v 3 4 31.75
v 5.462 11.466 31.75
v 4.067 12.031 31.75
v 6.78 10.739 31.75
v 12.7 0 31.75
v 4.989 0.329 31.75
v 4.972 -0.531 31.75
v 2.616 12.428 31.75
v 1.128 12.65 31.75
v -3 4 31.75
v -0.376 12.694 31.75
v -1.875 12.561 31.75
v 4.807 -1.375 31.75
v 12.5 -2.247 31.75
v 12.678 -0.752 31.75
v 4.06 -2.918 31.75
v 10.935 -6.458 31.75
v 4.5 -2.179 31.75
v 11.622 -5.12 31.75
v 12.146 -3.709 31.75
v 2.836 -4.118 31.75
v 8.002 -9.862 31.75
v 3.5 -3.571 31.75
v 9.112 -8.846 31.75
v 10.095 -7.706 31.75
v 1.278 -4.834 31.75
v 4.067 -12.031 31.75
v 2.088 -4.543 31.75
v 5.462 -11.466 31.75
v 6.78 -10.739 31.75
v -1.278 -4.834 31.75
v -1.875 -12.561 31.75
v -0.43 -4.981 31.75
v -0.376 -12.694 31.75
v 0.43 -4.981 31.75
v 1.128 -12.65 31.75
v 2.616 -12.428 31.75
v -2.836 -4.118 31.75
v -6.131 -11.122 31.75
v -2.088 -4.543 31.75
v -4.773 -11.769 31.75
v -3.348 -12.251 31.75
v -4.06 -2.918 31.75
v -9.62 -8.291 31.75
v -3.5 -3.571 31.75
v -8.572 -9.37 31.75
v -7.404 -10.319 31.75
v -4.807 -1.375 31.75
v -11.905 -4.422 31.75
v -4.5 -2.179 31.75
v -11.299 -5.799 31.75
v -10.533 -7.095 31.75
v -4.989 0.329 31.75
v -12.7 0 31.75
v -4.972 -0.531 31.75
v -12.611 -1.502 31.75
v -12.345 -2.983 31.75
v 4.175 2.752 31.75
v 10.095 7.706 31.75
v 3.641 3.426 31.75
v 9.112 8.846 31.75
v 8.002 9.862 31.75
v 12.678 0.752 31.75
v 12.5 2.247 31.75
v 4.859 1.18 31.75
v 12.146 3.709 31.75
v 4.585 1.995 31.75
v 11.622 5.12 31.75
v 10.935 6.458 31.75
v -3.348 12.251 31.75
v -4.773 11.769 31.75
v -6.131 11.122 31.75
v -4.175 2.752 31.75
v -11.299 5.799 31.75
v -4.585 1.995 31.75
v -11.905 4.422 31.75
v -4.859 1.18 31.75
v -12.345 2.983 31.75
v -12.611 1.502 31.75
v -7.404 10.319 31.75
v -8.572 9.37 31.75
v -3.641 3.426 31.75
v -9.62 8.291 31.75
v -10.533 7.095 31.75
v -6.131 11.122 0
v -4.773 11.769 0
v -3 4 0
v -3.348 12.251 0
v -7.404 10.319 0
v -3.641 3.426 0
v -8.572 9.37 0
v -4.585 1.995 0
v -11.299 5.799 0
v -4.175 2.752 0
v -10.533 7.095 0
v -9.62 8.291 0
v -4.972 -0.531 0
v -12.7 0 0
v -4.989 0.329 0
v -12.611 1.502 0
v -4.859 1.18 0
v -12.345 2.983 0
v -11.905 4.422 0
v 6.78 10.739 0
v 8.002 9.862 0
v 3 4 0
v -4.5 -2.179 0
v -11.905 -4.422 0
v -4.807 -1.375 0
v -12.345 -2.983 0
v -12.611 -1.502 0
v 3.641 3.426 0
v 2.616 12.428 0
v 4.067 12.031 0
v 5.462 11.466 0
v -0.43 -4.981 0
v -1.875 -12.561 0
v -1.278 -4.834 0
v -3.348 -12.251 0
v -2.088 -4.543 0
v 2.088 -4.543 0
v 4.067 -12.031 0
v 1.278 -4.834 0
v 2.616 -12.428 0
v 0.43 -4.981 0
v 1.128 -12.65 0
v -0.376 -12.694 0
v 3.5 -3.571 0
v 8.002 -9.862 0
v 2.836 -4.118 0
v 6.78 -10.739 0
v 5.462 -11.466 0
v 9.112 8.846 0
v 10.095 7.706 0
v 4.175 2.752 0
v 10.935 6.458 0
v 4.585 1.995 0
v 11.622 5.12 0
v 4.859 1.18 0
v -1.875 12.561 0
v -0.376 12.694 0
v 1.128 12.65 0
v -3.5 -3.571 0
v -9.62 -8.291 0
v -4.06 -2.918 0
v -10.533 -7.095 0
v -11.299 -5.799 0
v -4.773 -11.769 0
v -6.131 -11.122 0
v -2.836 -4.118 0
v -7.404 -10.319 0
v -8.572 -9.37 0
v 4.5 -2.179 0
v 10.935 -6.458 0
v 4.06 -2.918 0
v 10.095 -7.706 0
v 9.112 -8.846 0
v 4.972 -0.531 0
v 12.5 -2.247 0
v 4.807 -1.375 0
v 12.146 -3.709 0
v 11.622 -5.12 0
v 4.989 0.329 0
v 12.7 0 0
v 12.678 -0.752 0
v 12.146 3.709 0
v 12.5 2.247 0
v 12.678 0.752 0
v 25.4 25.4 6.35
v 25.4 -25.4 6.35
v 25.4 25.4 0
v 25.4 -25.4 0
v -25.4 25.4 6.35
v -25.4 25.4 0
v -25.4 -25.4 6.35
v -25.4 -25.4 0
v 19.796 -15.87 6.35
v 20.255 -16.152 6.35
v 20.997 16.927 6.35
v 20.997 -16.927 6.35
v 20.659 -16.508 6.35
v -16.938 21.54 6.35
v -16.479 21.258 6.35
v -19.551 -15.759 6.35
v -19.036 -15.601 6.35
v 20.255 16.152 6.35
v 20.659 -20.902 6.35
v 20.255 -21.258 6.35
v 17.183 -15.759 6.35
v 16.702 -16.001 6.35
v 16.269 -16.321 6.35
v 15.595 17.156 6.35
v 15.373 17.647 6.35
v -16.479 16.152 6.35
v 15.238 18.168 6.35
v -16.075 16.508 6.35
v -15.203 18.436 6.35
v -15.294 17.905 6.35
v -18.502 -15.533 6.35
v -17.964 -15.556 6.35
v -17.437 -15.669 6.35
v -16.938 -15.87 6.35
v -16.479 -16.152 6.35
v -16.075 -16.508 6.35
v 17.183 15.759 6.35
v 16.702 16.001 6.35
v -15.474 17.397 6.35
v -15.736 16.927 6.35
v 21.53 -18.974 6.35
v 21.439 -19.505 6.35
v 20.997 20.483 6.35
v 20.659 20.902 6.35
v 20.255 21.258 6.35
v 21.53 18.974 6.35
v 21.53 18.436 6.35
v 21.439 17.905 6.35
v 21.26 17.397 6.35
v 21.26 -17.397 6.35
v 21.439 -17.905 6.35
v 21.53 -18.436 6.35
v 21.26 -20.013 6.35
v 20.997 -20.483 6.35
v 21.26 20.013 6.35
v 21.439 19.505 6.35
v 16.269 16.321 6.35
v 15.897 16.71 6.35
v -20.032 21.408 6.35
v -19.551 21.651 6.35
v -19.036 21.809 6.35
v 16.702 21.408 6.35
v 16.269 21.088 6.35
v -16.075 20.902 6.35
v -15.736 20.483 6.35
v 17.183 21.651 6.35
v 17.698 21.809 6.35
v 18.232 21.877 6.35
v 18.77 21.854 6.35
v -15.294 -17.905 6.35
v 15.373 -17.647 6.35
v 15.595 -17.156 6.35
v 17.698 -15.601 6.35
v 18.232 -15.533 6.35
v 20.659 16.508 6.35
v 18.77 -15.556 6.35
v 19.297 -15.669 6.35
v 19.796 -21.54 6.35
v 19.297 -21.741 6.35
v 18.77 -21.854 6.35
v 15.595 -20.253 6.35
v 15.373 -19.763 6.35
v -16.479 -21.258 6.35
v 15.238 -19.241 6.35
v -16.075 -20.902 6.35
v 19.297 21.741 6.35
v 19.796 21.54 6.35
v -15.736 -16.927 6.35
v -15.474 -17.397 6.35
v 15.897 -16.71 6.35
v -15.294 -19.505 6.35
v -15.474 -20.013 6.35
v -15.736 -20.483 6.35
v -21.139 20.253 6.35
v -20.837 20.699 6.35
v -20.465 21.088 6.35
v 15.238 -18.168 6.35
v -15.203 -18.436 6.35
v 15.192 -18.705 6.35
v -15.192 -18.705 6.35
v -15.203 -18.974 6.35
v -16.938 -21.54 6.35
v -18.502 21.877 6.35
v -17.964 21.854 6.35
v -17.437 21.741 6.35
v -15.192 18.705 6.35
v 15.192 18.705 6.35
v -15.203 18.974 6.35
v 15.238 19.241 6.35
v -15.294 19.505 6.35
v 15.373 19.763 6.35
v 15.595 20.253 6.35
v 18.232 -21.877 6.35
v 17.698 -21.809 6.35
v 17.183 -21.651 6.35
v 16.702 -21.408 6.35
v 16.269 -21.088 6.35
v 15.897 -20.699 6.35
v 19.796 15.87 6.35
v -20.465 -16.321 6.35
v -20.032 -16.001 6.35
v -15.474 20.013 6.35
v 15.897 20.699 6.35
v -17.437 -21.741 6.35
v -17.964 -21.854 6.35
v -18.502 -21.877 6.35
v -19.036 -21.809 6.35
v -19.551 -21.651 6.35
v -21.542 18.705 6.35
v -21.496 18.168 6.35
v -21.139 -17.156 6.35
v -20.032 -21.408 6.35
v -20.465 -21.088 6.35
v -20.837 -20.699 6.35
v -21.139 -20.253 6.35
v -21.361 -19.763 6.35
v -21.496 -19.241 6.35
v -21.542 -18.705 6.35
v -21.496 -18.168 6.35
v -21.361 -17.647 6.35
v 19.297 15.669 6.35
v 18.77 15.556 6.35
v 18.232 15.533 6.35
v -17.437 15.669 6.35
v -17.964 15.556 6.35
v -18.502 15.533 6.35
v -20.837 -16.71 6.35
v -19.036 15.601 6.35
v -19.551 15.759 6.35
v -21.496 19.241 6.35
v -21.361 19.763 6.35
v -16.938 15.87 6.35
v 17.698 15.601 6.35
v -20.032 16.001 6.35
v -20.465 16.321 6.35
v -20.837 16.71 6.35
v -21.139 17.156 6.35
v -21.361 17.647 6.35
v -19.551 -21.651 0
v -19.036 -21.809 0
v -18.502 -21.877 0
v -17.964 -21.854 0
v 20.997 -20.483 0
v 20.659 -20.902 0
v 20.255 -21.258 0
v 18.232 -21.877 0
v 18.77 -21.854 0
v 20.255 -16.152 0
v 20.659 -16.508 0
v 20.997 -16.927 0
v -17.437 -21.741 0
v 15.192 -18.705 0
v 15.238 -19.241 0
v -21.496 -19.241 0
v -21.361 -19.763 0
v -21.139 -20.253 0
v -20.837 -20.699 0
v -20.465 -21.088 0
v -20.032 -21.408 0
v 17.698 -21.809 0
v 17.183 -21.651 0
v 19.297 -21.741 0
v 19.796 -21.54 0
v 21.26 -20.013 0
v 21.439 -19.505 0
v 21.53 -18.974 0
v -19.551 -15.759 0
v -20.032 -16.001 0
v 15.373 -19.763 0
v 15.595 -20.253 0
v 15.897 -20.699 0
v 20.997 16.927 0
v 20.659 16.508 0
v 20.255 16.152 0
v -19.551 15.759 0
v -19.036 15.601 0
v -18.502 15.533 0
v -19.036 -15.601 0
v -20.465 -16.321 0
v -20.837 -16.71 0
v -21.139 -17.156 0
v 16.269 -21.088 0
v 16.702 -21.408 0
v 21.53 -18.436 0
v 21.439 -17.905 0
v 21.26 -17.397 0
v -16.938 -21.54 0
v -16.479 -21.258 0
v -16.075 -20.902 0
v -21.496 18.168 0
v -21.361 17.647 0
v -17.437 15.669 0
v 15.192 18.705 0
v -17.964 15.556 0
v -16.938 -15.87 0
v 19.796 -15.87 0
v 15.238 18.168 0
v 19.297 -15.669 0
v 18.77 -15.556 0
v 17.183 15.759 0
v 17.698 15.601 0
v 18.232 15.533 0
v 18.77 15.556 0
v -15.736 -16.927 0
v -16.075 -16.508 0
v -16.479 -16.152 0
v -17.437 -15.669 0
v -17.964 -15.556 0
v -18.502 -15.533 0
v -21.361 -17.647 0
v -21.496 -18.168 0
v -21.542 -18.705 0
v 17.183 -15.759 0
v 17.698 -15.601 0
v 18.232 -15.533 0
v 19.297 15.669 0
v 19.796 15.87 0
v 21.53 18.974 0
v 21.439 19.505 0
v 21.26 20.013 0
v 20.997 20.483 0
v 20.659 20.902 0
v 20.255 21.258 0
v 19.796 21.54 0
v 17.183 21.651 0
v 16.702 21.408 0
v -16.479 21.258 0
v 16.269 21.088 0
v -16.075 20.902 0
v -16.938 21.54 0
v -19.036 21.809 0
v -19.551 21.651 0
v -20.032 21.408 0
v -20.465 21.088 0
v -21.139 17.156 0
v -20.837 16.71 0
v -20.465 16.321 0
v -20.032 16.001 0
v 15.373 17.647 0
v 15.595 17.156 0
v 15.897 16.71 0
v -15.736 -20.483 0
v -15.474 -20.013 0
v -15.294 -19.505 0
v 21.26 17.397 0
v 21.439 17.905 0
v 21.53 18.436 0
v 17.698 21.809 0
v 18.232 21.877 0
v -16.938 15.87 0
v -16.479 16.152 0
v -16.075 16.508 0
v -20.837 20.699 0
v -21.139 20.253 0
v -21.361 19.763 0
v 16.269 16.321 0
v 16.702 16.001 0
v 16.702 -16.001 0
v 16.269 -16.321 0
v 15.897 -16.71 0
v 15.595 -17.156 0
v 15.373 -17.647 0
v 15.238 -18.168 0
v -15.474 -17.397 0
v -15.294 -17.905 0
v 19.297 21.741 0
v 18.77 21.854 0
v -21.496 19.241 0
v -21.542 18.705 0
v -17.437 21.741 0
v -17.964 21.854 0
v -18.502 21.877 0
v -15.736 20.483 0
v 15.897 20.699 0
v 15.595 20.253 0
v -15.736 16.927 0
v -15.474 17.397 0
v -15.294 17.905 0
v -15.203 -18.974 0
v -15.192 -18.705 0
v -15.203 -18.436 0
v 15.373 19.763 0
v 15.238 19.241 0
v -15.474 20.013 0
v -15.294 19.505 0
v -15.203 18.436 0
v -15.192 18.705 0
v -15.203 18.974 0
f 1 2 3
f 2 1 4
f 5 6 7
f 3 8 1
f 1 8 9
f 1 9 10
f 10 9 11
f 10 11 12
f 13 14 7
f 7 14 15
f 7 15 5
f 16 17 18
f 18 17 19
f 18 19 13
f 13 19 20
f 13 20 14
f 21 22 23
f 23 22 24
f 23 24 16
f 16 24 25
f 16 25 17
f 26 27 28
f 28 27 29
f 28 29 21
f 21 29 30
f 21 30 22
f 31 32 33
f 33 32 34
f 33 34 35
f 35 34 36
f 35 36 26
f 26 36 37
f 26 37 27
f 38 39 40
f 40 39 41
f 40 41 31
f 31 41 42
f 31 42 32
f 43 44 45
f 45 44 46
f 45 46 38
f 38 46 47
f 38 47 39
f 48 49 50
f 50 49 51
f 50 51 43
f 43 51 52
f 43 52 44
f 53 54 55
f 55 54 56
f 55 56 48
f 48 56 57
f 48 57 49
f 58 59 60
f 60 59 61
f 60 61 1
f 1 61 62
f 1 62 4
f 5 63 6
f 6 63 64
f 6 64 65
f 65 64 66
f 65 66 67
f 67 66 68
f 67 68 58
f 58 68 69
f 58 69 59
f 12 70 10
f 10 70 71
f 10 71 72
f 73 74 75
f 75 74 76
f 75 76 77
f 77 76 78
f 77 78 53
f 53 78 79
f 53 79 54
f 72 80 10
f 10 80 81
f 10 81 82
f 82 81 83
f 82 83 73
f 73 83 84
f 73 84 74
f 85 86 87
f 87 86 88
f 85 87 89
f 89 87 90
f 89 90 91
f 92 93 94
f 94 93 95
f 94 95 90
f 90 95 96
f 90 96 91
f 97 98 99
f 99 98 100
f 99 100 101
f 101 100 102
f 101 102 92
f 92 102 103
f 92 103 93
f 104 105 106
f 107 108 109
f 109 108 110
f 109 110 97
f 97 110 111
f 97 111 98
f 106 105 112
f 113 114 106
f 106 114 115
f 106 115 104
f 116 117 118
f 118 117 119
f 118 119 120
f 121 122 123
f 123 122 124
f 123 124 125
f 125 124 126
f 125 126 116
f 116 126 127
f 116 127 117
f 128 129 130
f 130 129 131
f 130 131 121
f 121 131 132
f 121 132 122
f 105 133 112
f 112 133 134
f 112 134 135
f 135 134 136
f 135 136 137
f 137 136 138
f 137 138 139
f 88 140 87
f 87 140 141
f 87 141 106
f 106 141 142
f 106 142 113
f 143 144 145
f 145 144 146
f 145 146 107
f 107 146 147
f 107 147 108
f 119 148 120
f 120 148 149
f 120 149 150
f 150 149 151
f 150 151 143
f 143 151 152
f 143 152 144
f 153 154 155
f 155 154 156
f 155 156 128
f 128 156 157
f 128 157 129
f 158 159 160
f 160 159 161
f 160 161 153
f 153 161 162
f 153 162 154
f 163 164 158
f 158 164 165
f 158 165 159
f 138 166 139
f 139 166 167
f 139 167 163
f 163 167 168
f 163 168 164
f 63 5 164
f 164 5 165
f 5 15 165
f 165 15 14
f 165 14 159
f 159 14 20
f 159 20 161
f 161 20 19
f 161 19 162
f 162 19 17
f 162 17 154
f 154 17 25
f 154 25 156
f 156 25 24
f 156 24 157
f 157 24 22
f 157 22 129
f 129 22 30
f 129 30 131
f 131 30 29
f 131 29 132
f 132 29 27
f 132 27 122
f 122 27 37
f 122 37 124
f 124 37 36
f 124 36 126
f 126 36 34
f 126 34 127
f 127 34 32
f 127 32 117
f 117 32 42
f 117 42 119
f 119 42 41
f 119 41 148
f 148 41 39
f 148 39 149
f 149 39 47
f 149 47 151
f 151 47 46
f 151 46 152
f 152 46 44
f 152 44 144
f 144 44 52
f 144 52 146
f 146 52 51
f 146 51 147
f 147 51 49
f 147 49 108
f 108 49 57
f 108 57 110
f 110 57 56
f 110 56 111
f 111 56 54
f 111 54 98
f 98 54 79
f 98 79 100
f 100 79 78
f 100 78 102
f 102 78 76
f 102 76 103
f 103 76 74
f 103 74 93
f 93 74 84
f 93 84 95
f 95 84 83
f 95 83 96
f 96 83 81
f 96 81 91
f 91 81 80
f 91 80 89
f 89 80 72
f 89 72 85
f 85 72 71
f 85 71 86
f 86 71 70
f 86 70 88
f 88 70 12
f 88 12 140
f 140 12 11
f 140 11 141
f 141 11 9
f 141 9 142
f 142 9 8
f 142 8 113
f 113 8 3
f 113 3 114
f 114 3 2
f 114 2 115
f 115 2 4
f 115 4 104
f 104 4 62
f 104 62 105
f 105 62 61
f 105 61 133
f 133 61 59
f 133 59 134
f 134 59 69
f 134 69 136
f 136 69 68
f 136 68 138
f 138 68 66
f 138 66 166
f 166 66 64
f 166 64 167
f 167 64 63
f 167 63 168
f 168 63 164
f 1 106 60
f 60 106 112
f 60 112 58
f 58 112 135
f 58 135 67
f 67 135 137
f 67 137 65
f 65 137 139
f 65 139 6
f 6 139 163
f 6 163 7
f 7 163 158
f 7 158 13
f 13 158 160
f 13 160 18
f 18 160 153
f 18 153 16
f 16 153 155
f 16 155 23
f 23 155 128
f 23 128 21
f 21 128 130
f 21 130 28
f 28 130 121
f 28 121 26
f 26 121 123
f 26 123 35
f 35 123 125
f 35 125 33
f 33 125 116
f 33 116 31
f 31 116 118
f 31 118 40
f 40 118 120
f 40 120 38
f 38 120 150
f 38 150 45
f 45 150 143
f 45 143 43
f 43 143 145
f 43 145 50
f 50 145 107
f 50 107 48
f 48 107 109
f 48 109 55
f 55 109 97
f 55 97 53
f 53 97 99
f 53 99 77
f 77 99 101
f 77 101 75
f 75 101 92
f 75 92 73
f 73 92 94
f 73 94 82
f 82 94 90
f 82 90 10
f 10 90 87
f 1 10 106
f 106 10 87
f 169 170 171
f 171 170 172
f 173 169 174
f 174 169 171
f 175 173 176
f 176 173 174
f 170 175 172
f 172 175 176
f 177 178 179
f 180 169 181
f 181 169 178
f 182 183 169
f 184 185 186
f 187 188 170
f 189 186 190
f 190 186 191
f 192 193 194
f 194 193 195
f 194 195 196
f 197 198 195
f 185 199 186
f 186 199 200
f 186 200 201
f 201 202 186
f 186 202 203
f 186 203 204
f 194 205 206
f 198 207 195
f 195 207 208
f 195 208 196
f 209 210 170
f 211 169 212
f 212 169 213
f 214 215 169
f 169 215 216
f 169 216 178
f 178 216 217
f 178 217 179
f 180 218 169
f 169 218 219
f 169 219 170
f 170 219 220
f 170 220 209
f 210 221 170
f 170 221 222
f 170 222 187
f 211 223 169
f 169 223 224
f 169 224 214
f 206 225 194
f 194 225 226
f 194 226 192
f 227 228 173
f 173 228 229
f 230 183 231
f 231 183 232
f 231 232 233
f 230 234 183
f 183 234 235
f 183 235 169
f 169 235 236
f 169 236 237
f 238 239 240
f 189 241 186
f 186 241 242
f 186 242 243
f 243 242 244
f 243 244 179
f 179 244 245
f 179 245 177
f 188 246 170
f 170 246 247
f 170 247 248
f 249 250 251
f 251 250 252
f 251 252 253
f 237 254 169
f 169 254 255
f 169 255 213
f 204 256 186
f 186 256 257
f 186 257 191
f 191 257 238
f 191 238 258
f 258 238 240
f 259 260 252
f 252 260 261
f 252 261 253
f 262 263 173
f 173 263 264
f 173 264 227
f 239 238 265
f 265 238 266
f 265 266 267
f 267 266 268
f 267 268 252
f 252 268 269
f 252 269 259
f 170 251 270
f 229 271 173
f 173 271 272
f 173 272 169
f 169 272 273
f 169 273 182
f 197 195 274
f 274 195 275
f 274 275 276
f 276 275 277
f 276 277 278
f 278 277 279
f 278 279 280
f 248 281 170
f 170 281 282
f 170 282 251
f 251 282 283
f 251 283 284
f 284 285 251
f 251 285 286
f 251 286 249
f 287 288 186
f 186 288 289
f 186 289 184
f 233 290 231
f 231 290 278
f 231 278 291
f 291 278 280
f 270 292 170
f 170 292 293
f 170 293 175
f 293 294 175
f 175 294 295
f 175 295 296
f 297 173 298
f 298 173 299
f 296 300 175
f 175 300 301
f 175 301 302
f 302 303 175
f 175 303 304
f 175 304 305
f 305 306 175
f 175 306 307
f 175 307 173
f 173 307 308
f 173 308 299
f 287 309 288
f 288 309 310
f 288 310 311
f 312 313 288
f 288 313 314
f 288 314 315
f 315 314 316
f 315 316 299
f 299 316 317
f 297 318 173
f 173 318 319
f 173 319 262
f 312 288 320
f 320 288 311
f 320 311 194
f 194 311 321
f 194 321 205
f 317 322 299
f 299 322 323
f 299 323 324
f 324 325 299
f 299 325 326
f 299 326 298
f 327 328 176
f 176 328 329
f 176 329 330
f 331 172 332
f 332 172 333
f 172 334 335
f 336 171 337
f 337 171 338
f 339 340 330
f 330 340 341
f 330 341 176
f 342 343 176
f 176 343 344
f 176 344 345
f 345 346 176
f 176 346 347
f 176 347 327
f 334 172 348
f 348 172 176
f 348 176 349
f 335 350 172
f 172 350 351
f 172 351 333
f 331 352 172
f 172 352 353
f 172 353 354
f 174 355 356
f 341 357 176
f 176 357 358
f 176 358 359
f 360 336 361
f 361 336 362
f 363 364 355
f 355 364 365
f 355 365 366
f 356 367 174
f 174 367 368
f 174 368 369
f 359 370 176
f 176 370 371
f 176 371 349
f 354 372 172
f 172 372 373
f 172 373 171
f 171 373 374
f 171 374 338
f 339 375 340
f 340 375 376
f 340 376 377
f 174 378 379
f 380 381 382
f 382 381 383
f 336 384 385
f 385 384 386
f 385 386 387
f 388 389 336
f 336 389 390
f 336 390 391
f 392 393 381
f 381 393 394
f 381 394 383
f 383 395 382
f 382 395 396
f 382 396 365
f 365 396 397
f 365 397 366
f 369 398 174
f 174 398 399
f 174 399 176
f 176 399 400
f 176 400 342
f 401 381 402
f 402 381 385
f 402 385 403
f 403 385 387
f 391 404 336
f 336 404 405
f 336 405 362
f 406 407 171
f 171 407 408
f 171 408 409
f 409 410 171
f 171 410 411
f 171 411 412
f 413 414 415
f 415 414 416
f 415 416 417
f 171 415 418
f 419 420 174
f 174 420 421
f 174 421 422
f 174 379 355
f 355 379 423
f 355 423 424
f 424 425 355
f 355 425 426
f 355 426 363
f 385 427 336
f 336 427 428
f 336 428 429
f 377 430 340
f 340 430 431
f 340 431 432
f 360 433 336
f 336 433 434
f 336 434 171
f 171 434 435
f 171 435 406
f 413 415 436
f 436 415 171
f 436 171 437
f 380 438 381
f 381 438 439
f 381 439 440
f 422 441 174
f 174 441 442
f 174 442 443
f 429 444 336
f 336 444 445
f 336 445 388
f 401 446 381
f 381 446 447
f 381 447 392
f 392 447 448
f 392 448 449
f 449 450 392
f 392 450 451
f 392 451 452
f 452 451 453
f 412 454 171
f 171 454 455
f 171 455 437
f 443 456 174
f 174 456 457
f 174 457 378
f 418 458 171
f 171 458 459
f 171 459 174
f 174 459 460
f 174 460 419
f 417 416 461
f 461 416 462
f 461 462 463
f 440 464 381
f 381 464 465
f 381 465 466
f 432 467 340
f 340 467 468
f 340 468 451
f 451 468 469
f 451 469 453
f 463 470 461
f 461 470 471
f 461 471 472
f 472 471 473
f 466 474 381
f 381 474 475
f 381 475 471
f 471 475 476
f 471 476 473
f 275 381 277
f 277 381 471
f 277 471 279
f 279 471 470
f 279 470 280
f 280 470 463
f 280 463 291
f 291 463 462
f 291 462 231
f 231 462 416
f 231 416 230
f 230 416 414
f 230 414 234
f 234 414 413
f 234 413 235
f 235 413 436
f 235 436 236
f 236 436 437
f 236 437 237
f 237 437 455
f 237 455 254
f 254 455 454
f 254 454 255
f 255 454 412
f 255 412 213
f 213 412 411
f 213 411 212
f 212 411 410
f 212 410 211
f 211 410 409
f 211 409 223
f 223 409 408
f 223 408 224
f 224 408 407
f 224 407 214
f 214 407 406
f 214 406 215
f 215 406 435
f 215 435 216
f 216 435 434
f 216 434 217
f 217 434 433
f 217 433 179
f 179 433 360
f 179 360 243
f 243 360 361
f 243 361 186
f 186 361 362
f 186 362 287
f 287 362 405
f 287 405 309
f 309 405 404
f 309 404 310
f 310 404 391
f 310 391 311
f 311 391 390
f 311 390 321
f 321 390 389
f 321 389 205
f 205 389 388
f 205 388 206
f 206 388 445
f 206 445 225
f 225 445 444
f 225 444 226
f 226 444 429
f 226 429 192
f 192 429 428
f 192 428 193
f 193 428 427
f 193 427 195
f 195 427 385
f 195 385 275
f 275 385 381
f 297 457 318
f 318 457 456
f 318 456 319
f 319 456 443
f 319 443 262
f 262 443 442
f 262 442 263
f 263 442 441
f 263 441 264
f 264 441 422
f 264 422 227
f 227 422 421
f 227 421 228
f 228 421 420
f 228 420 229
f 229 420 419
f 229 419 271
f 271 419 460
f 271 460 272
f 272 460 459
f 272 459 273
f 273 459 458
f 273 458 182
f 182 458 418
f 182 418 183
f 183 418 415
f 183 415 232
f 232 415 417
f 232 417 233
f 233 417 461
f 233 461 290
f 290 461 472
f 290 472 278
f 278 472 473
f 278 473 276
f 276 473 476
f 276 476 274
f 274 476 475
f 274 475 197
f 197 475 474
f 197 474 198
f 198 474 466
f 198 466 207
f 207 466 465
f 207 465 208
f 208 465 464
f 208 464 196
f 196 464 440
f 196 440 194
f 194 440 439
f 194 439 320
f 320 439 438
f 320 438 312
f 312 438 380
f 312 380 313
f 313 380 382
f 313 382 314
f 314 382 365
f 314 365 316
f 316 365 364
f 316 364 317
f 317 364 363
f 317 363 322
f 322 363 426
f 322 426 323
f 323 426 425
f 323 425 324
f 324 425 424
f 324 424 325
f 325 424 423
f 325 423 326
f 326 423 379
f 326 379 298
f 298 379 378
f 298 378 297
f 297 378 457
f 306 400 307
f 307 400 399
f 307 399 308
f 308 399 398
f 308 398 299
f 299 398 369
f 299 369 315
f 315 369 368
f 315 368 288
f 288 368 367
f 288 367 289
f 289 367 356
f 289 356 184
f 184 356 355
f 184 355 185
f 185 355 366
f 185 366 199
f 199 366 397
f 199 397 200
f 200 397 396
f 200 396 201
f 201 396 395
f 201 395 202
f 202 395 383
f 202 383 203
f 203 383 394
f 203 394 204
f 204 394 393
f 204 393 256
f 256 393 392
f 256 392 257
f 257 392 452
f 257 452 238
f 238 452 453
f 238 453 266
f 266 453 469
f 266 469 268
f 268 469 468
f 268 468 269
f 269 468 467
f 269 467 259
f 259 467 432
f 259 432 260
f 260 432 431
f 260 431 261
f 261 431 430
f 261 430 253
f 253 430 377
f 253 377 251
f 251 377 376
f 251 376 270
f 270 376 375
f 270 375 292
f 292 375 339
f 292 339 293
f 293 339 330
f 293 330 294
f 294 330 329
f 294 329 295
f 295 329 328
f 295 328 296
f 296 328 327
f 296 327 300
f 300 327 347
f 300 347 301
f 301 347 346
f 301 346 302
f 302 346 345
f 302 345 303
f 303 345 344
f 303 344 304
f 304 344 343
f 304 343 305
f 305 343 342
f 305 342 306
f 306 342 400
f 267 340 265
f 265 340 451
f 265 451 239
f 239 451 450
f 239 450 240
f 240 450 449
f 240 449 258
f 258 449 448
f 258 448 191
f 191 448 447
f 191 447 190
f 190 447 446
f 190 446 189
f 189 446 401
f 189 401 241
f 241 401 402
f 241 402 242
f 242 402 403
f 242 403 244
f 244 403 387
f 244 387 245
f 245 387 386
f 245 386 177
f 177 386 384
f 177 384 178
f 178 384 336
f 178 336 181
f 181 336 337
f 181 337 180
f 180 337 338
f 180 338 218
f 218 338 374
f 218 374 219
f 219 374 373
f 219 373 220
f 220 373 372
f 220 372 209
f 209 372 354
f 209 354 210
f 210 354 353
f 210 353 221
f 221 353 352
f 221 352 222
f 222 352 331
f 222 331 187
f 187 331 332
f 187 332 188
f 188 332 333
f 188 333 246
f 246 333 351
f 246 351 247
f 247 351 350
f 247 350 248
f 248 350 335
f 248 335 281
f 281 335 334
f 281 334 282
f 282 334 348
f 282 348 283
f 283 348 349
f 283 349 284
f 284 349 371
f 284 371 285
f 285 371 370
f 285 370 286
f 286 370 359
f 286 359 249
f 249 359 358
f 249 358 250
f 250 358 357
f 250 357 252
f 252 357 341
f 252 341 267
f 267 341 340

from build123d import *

# Parameters (mm, degrees)
SKETCH1_R               = 12.7
BOSS_EXTRUDE5_DEPTH     = 31.75
SKETCH3_W               = 50.8
SKETCH3_H               = 50.8
BOSS_EXTRUDE6_DEPTH     = 6.35
SKETCH4_R               = 3.175
CUT_EXTRUDE1_DEPTH      = 32.75
MIRROR2_COPY_1_SKETCH_R = 3.175
MIRROR2_COPY_1_DEPTH    = 32.75


with BuildPart() as part:
    # Sketch1 → Boss-Extrude5 (new body)
    with BuildSketch(Plane.XY):
        Circle(SKETCH1_R)
        with BuildLine():
            Line((-3.000000011, 3.999999874), (3.000000011, 3.999999874))
            ThreePointArc((3.000000011, 3.999999874), (0, -4.999999906), (-3.000000011, 3.999999874))
        make_face(mode=Mode.SUBTRACT)
    extrude(amount=BOSS_EXTRUDE5_DEPTH)


with BuildPart() as body_2:
    # Sketch3 → Boss-Extrude6 (new body)
    with BuildSketch(Plane.XY):
        Rectangle(SKETCH3_W, SKETCH3_H)
    extrude(amount=BOSS_EXTRUDE6_DEPTH)

    # Sketch4 → Cut-Extrude1 (cut, through all)
    with BuildSketch(Plane(origin=(0, 0, 0), x_dir=(-1, 0, 0), z_dir=(0, 0, -1))):
        with Locations((-18.366924537, 18.704816802)):
            Circle(SKETCH4_R)
    cut_extrude1 = extrude(amount=-CUT_EXTRUDE1_DEPTH, mode=Mode.SUBTRACT)

    # Mirror1: Cut-Extrude1 across plane
    add(cut_extrude1.mirror(Plane(origin=(0, 0, 0), x_dir=(0, 0, 1), z_dir=(1, 0, 0))), mode=Mode.SUBTRACT)

    # Mirror2: Cut-Extrude1 across plane
    add(cut_extrude1.mirror(Plane.ZX), mode=Mode.SUBTRACT)

    # Mirror2 copy 1 sketch → Mirror2 copy 1 (cut, through all)
    with BuildSketch(Plane(origin=(0, 0, 0), x_dir=(1, 0, 0), z_dir=(0, 0, -1))):
        with Locations((-18.366924537, 18.704816802)):
            Circle(MIRROR2_COPY_1_SKETCH_R)
    extrude(amount=-MIRROR2_COPY_1_DEPTH, mode=Mode.SUBTRACT)


solid = Compound([part.part, body_2.part])
